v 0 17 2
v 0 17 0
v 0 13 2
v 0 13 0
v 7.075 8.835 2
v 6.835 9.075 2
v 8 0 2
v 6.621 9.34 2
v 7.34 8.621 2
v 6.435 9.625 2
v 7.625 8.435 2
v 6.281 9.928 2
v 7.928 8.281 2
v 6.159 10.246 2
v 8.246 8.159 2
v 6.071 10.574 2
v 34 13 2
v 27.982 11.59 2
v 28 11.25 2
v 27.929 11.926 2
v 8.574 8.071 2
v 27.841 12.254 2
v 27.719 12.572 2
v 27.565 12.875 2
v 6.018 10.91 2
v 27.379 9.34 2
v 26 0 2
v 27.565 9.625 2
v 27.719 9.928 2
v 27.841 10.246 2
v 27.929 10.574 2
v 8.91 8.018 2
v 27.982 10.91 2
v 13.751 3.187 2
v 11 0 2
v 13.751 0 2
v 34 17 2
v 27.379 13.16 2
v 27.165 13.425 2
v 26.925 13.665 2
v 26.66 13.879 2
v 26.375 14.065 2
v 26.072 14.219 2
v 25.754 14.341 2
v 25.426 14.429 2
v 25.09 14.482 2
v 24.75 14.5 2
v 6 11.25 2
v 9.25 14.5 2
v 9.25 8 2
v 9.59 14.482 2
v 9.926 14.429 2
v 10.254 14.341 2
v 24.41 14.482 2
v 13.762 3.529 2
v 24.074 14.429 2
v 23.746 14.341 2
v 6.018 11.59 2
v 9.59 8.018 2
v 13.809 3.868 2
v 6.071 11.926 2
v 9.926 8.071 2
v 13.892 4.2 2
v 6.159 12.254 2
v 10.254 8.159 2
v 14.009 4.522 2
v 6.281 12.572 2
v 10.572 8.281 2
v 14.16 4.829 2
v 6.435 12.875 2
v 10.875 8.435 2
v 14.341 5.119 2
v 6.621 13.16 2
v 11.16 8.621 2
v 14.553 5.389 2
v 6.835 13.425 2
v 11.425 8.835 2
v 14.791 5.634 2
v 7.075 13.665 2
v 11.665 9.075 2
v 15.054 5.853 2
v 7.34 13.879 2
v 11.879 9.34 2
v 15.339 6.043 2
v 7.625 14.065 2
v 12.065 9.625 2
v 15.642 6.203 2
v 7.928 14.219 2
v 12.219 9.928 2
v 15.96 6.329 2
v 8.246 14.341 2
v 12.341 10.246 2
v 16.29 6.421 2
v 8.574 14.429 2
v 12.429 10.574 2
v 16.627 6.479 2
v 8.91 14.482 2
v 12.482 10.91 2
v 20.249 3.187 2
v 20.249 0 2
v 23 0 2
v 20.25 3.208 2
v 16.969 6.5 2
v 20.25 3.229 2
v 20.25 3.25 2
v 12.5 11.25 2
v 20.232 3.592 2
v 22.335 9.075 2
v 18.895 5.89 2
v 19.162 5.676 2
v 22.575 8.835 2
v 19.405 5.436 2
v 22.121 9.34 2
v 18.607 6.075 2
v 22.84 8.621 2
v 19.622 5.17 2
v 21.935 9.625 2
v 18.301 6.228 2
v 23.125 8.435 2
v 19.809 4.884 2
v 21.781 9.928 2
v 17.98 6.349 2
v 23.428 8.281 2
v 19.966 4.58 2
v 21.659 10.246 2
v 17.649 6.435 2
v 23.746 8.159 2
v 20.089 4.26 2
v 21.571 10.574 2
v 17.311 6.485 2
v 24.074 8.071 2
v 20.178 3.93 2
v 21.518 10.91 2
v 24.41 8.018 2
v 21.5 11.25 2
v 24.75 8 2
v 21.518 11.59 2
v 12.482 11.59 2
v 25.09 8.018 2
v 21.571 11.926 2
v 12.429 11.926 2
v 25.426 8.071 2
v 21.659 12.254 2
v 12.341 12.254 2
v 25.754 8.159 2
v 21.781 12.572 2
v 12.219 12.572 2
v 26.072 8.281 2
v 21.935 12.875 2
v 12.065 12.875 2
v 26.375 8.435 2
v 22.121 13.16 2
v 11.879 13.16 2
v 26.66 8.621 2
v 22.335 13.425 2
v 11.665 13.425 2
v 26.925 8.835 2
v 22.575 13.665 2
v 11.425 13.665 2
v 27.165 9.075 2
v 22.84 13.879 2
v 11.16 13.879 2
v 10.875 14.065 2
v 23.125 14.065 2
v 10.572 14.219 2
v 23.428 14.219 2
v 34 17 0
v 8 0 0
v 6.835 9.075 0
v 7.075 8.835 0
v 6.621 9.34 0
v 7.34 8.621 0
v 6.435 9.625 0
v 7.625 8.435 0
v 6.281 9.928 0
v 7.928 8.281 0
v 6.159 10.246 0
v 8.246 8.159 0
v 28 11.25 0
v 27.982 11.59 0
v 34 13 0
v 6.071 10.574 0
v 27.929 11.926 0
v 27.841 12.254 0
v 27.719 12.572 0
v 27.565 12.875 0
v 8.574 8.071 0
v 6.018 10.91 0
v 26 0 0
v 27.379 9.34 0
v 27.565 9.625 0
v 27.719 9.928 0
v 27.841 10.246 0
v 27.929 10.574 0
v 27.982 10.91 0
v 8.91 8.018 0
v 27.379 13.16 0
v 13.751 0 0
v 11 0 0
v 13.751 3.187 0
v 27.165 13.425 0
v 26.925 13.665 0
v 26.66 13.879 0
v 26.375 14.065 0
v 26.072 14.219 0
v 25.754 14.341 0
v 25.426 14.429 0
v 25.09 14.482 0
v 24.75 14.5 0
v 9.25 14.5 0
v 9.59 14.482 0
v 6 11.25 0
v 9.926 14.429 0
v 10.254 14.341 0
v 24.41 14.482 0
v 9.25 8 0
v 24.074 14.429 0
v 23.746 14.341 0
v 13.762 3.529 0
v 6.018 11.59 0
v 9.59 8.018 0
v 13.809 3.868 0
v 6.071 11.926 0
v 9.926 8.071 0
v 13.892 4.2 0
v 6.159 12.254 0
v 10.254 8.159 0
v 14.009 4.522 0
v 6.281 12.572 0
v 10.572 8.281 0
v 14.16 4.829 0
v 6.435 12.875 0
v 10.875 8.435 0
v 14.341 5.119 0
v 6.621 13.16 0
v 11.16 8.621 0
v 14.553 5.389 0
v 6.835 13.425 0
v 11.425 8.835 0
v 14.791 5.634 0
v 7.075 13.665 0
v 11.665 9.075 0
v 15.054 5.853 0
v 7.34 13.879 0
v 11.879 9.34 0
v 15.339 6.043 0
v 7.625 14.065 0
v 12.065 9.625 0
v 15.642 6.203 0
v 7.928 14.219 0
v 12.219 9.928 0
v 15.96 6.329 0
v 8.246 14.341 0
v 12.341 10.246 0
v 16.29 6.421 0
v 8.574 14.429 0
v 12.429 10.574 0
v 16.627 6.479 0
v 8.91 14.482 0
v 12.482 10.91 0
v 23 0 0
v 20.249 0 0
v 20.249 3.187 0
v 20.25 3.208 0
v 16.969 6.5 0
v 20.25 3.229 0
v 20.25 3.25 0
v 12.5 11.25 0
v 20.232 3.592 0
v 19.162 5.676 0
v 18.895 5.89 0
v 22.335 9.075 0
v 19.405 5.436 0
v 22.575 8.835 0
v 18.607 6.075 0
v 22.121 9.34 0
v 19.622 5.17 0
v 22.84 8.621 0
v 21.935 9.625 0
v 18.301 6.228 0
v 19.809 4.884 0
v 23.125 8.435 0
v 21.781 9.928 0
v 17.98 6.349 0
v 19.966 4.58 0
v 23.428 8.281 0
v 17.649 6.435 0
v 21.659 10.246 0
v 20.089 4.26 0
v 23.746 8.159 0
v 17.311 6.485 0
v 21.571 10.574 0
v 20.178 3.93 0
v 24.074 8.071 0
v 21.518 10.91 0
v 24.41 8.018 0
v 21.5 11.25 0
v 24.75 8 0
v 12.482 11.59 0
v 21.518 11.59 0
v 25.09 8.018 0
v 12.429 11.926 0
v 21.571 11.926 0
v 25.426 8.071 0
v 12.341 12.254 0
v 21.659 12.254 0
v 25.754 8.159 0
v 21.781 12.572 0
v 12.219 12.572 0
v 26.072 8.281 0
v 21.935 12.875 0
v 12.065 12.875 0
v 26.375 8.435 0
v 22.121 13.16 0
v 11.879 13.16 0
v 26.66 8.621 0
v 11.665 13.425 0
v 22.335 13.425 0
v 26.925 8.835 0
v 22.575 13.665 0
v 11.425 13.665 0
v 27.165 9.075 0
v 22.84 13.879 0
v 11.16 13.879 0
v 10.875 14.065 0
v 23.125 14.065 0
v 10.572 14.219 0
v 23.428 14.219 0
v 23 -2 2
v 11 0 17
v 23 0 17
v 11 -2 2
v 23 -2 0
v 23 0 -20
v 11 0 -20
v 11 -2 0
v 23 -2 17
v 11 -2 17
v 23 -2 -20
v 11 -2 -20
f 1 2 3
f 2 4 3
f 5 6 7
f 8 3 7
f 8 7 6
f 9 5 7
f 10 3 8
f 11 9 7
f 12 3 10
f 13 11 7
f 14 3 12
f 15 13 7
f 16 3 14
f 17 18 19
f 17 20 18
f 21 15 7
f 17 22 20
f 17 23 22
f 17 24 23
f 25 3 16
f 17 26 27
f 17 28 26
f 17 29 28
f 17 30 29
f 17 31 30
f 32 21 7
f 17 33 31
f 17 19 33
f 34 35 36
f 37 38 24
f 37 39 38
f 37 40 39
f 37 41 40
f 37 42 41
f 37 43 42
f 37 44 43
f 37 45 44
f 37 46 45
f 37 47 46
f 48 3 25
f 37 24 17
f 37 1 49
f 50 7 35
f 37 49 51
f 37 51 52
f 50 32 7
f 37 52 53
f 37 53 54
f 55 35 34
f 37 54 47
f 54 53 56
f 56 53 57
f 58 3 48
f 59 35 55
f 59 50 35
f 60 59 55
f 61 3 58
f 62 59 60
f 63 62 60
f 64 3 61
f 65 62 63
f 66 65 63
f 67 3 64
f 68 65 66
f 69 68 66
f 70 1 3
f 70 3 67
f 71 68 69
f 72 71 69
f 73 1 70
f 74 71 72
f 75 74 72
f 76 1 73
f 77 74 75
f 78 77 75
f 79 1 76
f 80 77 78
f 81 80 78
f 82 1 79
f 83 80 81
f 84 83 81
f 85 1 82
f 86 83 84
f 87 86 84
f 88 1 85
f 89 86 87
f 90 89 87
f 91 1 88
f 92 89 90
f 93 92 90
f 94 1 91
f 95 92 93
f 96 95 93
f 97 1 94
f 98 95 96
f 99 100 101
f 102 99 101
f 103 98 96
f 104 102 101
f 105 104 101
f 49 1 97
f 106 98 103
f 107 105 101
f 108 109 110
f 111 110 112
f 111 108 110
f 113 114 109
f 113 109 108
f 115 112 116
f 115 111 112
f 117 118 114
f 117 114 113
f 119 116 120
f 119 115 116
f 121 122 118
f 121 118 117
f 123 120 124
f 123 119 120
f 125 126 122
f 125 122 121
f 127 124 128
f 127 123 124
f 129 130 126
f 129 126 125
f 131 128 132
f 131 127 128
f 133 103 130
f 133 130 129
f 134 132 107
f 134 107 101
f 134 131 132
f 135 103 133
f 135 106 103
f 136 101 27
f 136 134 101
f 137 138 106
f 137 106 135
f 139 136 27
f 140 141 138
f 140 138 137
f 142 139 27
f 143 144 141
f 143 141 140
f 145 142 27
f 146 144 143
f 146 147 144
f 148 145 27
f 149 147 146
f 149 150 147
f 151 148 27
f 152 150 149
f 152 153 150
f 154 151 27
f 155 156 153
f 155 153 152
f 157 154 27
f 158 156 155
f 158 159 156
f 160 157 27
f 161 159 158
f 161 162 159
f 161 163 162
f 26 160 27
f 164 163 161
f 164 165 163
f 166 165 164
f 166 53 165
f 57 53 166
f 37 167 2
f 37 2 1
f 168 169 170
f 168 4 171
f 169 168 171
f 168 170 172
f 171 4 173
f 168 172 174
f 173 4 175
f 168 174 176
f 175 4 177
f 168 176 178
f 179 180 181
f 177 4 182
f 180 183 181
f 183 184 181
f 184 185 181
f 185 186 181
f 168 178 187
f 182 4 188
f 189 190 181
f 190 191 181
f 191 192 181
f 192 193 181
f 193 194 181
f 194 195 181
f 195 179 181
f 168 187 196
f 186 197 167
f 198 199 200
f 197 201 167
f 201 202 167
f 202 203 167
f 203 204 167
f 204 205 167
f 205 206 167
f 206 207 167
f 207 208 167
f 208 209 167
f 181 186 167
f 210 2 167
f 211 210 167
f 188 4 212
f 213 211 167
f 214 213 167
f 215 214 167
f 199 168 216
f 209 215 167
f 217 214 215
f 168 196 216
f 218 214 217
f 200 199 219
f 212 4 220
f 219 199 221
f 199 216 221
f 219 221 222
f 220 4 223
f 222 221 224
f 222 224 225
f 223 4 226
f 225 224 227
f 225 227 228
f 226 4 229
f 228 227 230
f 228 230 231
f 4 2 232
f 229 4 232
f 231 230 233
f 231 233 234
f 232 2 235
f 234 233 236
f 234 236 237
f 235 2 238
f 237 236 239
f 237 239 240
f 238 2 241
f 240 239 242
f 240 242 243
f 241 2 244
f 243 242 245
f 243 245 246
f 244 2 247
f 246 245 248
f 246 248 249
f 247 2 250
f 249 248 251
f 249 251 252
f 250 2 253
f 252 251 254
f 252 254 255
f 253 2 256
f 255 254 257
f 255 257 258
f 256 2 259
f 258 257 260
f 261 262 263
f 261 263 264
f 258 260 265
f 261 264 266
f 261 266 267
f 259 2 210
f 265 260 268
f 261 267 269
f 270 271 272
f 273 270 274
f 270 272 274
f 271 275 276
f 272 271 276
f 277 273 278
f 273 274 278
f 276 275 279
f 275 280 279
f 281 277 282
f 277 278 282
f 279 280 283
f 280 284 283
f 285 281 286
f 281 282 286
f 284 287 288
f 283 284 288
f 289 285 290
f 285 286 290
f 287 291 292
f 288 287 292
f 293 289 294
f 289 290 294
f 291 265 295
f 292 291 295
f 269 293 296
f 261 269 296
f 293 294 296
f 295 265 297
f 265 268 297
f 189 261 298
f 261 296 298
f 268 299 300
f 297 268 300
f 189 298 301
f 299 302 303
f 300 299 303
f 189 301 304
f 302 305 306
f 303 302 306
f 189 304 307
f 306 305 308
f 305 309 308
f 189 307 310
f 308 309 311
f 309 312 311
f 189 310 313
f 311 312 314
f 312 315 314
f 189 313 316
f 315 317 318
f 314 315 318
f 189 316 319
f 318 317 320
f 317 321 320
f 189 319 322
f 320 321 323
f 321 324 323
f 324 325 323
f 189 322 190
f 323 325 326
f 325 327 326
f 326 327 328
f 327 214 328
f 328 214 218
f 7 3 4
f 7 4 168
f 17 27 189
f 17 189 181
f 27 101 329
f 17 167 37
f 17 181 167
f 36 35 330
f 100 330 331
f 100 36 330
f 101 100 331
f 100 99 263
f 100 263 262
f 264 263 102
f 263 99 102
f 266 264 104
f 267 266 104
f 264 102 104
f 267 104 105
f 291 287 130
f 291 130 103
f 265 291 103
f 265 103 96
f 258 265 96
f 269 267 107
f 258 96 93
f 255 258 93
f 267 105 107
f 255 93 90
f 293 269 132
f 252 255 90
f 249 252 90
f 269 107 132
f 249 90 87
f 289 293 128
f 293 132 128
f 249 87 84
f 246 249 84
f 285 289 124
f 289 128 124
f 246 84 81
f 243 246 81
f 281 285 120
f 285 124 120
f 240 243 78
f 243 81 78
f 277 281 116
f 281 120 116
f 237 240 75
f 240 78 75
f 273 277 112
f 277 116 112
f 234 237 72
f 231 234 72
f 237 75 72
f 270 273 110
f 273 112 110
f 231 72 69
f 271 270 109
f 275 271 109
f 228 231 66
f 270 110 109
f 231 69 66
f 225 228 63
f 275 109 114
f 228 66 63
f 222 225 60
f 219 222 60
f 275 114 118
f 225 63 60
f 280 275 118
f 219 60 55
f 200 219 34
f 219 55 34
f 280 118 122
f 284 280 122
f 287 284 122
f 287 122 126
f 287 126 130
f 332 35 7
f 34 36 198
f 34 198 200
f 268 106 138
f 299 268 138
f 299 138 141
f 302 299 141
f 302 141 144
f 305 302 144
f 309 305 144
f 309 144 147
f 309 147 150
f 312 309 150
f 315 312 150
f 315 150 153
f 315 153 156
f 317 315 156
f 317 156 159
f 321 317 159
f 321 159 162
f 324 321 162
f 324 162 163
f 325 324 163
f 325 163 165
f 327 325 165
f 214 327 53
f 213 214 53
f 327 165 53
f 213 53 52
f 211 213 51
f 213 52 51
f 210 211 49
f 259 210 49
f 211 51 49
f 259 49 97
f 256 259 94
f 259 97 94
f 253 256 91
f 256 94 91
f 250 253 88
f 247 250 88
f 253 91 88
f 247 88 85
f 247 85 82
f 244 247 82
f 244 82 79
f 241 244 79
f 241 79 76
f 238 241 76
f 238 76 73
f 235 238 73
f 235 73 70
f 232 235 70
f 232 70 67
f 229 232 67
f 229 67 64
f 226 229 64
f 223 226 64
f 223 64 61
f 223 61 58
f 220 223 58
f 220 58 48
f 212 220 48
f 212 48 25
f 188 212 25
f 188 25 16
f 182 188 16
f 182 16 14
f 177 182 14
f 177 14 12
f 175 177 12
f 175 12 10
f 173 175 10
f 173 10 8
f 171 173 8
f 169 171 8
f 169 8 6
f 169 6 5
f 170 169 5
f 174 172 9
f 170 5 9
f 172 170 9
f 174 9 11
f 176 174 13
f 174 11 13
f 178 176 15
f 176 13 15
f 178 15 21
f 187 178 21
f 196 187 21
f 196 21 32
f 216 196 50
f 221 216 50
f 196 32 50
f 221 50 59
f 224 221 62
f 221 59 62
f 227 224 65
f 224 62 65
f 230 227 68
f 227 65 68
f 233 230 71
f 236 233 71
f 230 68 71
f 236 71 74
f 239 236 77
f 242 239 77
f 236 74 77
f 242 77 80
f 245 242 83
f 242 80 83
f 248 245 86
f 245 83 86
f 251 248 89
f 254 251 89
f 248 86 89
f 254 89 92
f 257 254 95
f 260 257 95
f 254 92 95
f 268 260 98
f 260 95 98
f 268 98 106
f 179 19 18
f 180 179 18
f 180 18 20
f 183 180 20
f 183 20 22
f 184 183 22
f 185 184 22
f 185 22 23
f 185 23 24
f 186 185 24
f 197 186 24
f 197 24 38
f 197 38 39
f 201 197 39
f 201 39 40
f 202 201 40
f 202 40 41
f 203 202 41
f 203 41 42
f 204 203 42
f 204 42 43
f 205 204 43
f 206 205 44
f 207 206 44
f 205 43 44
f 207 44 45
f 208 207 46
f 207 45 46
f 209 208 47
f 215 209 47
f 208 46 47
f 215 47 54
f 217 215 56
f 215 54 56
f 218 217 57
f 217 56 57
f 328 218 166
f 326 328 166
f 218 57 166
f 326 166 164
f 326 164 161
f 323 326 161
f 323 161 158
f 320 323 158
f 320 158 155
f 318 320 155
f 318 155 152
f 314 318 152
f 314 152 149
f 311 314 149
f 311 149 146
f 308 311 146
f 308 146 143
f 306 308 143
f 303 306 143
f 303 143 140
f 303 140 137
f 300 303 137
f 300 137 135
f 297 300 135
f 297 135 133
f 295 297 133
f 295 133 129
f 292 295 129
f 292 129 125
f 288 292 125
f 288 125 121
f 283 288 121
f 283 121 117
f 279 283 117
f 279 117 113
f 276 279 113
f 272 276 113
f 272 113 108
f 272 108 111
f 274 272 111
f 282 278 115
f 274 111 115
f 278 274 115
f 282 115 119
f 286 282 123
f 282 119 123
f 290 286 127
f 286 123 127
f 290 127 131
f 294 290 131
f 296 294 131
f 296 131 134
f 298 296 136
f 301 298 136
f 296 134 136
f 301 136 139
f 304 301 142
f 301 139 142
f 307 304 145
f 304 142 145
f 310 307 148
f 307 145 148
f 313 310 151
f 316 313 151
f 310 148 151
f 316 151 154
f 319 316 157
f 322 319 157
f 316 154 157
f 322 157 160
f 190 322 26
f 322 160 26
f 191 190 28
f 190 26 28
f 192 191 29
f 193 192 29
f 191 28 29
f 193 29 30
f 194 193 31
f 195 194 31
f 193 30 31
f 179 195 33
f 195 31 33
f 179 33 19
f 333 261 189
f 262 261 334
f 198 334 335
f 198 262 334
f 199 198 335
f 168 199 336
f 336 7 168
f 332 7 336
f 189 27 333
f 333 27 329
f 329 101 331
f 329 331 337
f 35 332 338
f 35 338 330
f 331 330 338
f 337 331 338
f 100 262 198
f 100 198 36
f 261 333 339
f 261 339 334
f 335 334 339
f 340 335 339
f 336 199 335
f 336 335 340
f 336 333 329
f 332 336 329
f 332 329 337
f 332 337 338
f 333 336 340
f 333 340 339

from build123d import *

# Parameters (mm, degrees)
BOX_W           = 34
BOX_H           = 17
BOX_DEPTH       = 2
SKETCH_R        = 3.25
POCKET_DEPTH    = 2
SKETCH001_W     = 6.498788
SKETCH001_H     = 3.187234
POCKET001_DEPTH = 2
POCKET002_DEPTH = 2
SKETCH003_W     = 12
SKETCH003_H     = 2
PAD_DEPTH       = 2
SKETCH004_W     = 12
SKETCH004_H     = 2
PAD001_DEPTH    = 15
SKETCH005_W     = 12
SKETCH005_H     = 2
PAD002_DEPTH    = 20
PAD003_DEPTH    = 2


with BuildPart() as part:
    # Box → Box (new body)
    with BuildSketch(Plane.XY):
        with Locations((17, 8.5)):
            Rectangle(BOX_W, BOX_H)
    extrude(amount=BOX_DEPTH)

    # Sketch → Pocket (cut)
    with BuildSketch(Plane.XY.offset(2)):
        with Locations((9.25, 11.25)):
            Circle(SKETCH_R)
        with Locations((24.75, 11.25)):
            Circle(SKETCH_R)
        with Locations((17, 3.25)):
            Circle(SKETCH_R)
    extrude(amount=-POCKET_DEPTH, mode=Mode.SUBTRACT)

    # Sketch001 → Pocket001 (cut)
    with BuildSketch(Plane.XY.offset(2)):
        with Locations((17, 1.593617)):
            Rectangle(SKETCH001_W, SKETCH001_H)
    extrude(amount=-POCKET001_DEPTH, mode=Mode.SUBTRACT)

    # Sketch002 → Pocket002 (cut)
    with BuildSketch(Plane.XY.offset(2)):
        Polygon((0, 0), (8, 0), (0, 13), align=None)
        Polygon((34, 0), (26, 0), (34, 13), align=None)
    extrude(amount=-POCKET002_DEPTH, mode=Mode.SUBTRACT)

    # Sketch003 → Pad (new body)
    with BuildSketch(Plane.XZ):
        with Locations((17, 1)):
            Rectangle(SKETCH003_W, SKETCH003_H)
    extrude(amount=PAD_DEPTH)

    # Sketch004 → Pad001 (new body)
    with BuildSketch(Plane.XY.offset(2)):
        with Locations((17, -1)):
            Rectangle(SKETCH004_W, SKETCH004_H)
    extrude(amount=PAD001_DEPTH)

    # Sketch005 → Pad002 (new body)
    with BuildSketch(Plane(origin=(0, 0, 0), x_dir=(1, 0, 0), z_dir=(0, 0, -1))):
        with Locations((17, 1)):
            Rectangle(SKETCH005_W, SKETCH005_H)
    extrude(amount=PAD002_DEPTH)

    # Sketch006 → Pad003 (new body)
    with BuildSketch(Plane.XY.offset(2)):
        Polygon((11, 0), (8, 0), (11, -2), align=None)
        Polygon((23, 0), (26, 0), (23, -2), align=None)
    extrude(amount=-PAD003_DEPTH)


solid = part.part
